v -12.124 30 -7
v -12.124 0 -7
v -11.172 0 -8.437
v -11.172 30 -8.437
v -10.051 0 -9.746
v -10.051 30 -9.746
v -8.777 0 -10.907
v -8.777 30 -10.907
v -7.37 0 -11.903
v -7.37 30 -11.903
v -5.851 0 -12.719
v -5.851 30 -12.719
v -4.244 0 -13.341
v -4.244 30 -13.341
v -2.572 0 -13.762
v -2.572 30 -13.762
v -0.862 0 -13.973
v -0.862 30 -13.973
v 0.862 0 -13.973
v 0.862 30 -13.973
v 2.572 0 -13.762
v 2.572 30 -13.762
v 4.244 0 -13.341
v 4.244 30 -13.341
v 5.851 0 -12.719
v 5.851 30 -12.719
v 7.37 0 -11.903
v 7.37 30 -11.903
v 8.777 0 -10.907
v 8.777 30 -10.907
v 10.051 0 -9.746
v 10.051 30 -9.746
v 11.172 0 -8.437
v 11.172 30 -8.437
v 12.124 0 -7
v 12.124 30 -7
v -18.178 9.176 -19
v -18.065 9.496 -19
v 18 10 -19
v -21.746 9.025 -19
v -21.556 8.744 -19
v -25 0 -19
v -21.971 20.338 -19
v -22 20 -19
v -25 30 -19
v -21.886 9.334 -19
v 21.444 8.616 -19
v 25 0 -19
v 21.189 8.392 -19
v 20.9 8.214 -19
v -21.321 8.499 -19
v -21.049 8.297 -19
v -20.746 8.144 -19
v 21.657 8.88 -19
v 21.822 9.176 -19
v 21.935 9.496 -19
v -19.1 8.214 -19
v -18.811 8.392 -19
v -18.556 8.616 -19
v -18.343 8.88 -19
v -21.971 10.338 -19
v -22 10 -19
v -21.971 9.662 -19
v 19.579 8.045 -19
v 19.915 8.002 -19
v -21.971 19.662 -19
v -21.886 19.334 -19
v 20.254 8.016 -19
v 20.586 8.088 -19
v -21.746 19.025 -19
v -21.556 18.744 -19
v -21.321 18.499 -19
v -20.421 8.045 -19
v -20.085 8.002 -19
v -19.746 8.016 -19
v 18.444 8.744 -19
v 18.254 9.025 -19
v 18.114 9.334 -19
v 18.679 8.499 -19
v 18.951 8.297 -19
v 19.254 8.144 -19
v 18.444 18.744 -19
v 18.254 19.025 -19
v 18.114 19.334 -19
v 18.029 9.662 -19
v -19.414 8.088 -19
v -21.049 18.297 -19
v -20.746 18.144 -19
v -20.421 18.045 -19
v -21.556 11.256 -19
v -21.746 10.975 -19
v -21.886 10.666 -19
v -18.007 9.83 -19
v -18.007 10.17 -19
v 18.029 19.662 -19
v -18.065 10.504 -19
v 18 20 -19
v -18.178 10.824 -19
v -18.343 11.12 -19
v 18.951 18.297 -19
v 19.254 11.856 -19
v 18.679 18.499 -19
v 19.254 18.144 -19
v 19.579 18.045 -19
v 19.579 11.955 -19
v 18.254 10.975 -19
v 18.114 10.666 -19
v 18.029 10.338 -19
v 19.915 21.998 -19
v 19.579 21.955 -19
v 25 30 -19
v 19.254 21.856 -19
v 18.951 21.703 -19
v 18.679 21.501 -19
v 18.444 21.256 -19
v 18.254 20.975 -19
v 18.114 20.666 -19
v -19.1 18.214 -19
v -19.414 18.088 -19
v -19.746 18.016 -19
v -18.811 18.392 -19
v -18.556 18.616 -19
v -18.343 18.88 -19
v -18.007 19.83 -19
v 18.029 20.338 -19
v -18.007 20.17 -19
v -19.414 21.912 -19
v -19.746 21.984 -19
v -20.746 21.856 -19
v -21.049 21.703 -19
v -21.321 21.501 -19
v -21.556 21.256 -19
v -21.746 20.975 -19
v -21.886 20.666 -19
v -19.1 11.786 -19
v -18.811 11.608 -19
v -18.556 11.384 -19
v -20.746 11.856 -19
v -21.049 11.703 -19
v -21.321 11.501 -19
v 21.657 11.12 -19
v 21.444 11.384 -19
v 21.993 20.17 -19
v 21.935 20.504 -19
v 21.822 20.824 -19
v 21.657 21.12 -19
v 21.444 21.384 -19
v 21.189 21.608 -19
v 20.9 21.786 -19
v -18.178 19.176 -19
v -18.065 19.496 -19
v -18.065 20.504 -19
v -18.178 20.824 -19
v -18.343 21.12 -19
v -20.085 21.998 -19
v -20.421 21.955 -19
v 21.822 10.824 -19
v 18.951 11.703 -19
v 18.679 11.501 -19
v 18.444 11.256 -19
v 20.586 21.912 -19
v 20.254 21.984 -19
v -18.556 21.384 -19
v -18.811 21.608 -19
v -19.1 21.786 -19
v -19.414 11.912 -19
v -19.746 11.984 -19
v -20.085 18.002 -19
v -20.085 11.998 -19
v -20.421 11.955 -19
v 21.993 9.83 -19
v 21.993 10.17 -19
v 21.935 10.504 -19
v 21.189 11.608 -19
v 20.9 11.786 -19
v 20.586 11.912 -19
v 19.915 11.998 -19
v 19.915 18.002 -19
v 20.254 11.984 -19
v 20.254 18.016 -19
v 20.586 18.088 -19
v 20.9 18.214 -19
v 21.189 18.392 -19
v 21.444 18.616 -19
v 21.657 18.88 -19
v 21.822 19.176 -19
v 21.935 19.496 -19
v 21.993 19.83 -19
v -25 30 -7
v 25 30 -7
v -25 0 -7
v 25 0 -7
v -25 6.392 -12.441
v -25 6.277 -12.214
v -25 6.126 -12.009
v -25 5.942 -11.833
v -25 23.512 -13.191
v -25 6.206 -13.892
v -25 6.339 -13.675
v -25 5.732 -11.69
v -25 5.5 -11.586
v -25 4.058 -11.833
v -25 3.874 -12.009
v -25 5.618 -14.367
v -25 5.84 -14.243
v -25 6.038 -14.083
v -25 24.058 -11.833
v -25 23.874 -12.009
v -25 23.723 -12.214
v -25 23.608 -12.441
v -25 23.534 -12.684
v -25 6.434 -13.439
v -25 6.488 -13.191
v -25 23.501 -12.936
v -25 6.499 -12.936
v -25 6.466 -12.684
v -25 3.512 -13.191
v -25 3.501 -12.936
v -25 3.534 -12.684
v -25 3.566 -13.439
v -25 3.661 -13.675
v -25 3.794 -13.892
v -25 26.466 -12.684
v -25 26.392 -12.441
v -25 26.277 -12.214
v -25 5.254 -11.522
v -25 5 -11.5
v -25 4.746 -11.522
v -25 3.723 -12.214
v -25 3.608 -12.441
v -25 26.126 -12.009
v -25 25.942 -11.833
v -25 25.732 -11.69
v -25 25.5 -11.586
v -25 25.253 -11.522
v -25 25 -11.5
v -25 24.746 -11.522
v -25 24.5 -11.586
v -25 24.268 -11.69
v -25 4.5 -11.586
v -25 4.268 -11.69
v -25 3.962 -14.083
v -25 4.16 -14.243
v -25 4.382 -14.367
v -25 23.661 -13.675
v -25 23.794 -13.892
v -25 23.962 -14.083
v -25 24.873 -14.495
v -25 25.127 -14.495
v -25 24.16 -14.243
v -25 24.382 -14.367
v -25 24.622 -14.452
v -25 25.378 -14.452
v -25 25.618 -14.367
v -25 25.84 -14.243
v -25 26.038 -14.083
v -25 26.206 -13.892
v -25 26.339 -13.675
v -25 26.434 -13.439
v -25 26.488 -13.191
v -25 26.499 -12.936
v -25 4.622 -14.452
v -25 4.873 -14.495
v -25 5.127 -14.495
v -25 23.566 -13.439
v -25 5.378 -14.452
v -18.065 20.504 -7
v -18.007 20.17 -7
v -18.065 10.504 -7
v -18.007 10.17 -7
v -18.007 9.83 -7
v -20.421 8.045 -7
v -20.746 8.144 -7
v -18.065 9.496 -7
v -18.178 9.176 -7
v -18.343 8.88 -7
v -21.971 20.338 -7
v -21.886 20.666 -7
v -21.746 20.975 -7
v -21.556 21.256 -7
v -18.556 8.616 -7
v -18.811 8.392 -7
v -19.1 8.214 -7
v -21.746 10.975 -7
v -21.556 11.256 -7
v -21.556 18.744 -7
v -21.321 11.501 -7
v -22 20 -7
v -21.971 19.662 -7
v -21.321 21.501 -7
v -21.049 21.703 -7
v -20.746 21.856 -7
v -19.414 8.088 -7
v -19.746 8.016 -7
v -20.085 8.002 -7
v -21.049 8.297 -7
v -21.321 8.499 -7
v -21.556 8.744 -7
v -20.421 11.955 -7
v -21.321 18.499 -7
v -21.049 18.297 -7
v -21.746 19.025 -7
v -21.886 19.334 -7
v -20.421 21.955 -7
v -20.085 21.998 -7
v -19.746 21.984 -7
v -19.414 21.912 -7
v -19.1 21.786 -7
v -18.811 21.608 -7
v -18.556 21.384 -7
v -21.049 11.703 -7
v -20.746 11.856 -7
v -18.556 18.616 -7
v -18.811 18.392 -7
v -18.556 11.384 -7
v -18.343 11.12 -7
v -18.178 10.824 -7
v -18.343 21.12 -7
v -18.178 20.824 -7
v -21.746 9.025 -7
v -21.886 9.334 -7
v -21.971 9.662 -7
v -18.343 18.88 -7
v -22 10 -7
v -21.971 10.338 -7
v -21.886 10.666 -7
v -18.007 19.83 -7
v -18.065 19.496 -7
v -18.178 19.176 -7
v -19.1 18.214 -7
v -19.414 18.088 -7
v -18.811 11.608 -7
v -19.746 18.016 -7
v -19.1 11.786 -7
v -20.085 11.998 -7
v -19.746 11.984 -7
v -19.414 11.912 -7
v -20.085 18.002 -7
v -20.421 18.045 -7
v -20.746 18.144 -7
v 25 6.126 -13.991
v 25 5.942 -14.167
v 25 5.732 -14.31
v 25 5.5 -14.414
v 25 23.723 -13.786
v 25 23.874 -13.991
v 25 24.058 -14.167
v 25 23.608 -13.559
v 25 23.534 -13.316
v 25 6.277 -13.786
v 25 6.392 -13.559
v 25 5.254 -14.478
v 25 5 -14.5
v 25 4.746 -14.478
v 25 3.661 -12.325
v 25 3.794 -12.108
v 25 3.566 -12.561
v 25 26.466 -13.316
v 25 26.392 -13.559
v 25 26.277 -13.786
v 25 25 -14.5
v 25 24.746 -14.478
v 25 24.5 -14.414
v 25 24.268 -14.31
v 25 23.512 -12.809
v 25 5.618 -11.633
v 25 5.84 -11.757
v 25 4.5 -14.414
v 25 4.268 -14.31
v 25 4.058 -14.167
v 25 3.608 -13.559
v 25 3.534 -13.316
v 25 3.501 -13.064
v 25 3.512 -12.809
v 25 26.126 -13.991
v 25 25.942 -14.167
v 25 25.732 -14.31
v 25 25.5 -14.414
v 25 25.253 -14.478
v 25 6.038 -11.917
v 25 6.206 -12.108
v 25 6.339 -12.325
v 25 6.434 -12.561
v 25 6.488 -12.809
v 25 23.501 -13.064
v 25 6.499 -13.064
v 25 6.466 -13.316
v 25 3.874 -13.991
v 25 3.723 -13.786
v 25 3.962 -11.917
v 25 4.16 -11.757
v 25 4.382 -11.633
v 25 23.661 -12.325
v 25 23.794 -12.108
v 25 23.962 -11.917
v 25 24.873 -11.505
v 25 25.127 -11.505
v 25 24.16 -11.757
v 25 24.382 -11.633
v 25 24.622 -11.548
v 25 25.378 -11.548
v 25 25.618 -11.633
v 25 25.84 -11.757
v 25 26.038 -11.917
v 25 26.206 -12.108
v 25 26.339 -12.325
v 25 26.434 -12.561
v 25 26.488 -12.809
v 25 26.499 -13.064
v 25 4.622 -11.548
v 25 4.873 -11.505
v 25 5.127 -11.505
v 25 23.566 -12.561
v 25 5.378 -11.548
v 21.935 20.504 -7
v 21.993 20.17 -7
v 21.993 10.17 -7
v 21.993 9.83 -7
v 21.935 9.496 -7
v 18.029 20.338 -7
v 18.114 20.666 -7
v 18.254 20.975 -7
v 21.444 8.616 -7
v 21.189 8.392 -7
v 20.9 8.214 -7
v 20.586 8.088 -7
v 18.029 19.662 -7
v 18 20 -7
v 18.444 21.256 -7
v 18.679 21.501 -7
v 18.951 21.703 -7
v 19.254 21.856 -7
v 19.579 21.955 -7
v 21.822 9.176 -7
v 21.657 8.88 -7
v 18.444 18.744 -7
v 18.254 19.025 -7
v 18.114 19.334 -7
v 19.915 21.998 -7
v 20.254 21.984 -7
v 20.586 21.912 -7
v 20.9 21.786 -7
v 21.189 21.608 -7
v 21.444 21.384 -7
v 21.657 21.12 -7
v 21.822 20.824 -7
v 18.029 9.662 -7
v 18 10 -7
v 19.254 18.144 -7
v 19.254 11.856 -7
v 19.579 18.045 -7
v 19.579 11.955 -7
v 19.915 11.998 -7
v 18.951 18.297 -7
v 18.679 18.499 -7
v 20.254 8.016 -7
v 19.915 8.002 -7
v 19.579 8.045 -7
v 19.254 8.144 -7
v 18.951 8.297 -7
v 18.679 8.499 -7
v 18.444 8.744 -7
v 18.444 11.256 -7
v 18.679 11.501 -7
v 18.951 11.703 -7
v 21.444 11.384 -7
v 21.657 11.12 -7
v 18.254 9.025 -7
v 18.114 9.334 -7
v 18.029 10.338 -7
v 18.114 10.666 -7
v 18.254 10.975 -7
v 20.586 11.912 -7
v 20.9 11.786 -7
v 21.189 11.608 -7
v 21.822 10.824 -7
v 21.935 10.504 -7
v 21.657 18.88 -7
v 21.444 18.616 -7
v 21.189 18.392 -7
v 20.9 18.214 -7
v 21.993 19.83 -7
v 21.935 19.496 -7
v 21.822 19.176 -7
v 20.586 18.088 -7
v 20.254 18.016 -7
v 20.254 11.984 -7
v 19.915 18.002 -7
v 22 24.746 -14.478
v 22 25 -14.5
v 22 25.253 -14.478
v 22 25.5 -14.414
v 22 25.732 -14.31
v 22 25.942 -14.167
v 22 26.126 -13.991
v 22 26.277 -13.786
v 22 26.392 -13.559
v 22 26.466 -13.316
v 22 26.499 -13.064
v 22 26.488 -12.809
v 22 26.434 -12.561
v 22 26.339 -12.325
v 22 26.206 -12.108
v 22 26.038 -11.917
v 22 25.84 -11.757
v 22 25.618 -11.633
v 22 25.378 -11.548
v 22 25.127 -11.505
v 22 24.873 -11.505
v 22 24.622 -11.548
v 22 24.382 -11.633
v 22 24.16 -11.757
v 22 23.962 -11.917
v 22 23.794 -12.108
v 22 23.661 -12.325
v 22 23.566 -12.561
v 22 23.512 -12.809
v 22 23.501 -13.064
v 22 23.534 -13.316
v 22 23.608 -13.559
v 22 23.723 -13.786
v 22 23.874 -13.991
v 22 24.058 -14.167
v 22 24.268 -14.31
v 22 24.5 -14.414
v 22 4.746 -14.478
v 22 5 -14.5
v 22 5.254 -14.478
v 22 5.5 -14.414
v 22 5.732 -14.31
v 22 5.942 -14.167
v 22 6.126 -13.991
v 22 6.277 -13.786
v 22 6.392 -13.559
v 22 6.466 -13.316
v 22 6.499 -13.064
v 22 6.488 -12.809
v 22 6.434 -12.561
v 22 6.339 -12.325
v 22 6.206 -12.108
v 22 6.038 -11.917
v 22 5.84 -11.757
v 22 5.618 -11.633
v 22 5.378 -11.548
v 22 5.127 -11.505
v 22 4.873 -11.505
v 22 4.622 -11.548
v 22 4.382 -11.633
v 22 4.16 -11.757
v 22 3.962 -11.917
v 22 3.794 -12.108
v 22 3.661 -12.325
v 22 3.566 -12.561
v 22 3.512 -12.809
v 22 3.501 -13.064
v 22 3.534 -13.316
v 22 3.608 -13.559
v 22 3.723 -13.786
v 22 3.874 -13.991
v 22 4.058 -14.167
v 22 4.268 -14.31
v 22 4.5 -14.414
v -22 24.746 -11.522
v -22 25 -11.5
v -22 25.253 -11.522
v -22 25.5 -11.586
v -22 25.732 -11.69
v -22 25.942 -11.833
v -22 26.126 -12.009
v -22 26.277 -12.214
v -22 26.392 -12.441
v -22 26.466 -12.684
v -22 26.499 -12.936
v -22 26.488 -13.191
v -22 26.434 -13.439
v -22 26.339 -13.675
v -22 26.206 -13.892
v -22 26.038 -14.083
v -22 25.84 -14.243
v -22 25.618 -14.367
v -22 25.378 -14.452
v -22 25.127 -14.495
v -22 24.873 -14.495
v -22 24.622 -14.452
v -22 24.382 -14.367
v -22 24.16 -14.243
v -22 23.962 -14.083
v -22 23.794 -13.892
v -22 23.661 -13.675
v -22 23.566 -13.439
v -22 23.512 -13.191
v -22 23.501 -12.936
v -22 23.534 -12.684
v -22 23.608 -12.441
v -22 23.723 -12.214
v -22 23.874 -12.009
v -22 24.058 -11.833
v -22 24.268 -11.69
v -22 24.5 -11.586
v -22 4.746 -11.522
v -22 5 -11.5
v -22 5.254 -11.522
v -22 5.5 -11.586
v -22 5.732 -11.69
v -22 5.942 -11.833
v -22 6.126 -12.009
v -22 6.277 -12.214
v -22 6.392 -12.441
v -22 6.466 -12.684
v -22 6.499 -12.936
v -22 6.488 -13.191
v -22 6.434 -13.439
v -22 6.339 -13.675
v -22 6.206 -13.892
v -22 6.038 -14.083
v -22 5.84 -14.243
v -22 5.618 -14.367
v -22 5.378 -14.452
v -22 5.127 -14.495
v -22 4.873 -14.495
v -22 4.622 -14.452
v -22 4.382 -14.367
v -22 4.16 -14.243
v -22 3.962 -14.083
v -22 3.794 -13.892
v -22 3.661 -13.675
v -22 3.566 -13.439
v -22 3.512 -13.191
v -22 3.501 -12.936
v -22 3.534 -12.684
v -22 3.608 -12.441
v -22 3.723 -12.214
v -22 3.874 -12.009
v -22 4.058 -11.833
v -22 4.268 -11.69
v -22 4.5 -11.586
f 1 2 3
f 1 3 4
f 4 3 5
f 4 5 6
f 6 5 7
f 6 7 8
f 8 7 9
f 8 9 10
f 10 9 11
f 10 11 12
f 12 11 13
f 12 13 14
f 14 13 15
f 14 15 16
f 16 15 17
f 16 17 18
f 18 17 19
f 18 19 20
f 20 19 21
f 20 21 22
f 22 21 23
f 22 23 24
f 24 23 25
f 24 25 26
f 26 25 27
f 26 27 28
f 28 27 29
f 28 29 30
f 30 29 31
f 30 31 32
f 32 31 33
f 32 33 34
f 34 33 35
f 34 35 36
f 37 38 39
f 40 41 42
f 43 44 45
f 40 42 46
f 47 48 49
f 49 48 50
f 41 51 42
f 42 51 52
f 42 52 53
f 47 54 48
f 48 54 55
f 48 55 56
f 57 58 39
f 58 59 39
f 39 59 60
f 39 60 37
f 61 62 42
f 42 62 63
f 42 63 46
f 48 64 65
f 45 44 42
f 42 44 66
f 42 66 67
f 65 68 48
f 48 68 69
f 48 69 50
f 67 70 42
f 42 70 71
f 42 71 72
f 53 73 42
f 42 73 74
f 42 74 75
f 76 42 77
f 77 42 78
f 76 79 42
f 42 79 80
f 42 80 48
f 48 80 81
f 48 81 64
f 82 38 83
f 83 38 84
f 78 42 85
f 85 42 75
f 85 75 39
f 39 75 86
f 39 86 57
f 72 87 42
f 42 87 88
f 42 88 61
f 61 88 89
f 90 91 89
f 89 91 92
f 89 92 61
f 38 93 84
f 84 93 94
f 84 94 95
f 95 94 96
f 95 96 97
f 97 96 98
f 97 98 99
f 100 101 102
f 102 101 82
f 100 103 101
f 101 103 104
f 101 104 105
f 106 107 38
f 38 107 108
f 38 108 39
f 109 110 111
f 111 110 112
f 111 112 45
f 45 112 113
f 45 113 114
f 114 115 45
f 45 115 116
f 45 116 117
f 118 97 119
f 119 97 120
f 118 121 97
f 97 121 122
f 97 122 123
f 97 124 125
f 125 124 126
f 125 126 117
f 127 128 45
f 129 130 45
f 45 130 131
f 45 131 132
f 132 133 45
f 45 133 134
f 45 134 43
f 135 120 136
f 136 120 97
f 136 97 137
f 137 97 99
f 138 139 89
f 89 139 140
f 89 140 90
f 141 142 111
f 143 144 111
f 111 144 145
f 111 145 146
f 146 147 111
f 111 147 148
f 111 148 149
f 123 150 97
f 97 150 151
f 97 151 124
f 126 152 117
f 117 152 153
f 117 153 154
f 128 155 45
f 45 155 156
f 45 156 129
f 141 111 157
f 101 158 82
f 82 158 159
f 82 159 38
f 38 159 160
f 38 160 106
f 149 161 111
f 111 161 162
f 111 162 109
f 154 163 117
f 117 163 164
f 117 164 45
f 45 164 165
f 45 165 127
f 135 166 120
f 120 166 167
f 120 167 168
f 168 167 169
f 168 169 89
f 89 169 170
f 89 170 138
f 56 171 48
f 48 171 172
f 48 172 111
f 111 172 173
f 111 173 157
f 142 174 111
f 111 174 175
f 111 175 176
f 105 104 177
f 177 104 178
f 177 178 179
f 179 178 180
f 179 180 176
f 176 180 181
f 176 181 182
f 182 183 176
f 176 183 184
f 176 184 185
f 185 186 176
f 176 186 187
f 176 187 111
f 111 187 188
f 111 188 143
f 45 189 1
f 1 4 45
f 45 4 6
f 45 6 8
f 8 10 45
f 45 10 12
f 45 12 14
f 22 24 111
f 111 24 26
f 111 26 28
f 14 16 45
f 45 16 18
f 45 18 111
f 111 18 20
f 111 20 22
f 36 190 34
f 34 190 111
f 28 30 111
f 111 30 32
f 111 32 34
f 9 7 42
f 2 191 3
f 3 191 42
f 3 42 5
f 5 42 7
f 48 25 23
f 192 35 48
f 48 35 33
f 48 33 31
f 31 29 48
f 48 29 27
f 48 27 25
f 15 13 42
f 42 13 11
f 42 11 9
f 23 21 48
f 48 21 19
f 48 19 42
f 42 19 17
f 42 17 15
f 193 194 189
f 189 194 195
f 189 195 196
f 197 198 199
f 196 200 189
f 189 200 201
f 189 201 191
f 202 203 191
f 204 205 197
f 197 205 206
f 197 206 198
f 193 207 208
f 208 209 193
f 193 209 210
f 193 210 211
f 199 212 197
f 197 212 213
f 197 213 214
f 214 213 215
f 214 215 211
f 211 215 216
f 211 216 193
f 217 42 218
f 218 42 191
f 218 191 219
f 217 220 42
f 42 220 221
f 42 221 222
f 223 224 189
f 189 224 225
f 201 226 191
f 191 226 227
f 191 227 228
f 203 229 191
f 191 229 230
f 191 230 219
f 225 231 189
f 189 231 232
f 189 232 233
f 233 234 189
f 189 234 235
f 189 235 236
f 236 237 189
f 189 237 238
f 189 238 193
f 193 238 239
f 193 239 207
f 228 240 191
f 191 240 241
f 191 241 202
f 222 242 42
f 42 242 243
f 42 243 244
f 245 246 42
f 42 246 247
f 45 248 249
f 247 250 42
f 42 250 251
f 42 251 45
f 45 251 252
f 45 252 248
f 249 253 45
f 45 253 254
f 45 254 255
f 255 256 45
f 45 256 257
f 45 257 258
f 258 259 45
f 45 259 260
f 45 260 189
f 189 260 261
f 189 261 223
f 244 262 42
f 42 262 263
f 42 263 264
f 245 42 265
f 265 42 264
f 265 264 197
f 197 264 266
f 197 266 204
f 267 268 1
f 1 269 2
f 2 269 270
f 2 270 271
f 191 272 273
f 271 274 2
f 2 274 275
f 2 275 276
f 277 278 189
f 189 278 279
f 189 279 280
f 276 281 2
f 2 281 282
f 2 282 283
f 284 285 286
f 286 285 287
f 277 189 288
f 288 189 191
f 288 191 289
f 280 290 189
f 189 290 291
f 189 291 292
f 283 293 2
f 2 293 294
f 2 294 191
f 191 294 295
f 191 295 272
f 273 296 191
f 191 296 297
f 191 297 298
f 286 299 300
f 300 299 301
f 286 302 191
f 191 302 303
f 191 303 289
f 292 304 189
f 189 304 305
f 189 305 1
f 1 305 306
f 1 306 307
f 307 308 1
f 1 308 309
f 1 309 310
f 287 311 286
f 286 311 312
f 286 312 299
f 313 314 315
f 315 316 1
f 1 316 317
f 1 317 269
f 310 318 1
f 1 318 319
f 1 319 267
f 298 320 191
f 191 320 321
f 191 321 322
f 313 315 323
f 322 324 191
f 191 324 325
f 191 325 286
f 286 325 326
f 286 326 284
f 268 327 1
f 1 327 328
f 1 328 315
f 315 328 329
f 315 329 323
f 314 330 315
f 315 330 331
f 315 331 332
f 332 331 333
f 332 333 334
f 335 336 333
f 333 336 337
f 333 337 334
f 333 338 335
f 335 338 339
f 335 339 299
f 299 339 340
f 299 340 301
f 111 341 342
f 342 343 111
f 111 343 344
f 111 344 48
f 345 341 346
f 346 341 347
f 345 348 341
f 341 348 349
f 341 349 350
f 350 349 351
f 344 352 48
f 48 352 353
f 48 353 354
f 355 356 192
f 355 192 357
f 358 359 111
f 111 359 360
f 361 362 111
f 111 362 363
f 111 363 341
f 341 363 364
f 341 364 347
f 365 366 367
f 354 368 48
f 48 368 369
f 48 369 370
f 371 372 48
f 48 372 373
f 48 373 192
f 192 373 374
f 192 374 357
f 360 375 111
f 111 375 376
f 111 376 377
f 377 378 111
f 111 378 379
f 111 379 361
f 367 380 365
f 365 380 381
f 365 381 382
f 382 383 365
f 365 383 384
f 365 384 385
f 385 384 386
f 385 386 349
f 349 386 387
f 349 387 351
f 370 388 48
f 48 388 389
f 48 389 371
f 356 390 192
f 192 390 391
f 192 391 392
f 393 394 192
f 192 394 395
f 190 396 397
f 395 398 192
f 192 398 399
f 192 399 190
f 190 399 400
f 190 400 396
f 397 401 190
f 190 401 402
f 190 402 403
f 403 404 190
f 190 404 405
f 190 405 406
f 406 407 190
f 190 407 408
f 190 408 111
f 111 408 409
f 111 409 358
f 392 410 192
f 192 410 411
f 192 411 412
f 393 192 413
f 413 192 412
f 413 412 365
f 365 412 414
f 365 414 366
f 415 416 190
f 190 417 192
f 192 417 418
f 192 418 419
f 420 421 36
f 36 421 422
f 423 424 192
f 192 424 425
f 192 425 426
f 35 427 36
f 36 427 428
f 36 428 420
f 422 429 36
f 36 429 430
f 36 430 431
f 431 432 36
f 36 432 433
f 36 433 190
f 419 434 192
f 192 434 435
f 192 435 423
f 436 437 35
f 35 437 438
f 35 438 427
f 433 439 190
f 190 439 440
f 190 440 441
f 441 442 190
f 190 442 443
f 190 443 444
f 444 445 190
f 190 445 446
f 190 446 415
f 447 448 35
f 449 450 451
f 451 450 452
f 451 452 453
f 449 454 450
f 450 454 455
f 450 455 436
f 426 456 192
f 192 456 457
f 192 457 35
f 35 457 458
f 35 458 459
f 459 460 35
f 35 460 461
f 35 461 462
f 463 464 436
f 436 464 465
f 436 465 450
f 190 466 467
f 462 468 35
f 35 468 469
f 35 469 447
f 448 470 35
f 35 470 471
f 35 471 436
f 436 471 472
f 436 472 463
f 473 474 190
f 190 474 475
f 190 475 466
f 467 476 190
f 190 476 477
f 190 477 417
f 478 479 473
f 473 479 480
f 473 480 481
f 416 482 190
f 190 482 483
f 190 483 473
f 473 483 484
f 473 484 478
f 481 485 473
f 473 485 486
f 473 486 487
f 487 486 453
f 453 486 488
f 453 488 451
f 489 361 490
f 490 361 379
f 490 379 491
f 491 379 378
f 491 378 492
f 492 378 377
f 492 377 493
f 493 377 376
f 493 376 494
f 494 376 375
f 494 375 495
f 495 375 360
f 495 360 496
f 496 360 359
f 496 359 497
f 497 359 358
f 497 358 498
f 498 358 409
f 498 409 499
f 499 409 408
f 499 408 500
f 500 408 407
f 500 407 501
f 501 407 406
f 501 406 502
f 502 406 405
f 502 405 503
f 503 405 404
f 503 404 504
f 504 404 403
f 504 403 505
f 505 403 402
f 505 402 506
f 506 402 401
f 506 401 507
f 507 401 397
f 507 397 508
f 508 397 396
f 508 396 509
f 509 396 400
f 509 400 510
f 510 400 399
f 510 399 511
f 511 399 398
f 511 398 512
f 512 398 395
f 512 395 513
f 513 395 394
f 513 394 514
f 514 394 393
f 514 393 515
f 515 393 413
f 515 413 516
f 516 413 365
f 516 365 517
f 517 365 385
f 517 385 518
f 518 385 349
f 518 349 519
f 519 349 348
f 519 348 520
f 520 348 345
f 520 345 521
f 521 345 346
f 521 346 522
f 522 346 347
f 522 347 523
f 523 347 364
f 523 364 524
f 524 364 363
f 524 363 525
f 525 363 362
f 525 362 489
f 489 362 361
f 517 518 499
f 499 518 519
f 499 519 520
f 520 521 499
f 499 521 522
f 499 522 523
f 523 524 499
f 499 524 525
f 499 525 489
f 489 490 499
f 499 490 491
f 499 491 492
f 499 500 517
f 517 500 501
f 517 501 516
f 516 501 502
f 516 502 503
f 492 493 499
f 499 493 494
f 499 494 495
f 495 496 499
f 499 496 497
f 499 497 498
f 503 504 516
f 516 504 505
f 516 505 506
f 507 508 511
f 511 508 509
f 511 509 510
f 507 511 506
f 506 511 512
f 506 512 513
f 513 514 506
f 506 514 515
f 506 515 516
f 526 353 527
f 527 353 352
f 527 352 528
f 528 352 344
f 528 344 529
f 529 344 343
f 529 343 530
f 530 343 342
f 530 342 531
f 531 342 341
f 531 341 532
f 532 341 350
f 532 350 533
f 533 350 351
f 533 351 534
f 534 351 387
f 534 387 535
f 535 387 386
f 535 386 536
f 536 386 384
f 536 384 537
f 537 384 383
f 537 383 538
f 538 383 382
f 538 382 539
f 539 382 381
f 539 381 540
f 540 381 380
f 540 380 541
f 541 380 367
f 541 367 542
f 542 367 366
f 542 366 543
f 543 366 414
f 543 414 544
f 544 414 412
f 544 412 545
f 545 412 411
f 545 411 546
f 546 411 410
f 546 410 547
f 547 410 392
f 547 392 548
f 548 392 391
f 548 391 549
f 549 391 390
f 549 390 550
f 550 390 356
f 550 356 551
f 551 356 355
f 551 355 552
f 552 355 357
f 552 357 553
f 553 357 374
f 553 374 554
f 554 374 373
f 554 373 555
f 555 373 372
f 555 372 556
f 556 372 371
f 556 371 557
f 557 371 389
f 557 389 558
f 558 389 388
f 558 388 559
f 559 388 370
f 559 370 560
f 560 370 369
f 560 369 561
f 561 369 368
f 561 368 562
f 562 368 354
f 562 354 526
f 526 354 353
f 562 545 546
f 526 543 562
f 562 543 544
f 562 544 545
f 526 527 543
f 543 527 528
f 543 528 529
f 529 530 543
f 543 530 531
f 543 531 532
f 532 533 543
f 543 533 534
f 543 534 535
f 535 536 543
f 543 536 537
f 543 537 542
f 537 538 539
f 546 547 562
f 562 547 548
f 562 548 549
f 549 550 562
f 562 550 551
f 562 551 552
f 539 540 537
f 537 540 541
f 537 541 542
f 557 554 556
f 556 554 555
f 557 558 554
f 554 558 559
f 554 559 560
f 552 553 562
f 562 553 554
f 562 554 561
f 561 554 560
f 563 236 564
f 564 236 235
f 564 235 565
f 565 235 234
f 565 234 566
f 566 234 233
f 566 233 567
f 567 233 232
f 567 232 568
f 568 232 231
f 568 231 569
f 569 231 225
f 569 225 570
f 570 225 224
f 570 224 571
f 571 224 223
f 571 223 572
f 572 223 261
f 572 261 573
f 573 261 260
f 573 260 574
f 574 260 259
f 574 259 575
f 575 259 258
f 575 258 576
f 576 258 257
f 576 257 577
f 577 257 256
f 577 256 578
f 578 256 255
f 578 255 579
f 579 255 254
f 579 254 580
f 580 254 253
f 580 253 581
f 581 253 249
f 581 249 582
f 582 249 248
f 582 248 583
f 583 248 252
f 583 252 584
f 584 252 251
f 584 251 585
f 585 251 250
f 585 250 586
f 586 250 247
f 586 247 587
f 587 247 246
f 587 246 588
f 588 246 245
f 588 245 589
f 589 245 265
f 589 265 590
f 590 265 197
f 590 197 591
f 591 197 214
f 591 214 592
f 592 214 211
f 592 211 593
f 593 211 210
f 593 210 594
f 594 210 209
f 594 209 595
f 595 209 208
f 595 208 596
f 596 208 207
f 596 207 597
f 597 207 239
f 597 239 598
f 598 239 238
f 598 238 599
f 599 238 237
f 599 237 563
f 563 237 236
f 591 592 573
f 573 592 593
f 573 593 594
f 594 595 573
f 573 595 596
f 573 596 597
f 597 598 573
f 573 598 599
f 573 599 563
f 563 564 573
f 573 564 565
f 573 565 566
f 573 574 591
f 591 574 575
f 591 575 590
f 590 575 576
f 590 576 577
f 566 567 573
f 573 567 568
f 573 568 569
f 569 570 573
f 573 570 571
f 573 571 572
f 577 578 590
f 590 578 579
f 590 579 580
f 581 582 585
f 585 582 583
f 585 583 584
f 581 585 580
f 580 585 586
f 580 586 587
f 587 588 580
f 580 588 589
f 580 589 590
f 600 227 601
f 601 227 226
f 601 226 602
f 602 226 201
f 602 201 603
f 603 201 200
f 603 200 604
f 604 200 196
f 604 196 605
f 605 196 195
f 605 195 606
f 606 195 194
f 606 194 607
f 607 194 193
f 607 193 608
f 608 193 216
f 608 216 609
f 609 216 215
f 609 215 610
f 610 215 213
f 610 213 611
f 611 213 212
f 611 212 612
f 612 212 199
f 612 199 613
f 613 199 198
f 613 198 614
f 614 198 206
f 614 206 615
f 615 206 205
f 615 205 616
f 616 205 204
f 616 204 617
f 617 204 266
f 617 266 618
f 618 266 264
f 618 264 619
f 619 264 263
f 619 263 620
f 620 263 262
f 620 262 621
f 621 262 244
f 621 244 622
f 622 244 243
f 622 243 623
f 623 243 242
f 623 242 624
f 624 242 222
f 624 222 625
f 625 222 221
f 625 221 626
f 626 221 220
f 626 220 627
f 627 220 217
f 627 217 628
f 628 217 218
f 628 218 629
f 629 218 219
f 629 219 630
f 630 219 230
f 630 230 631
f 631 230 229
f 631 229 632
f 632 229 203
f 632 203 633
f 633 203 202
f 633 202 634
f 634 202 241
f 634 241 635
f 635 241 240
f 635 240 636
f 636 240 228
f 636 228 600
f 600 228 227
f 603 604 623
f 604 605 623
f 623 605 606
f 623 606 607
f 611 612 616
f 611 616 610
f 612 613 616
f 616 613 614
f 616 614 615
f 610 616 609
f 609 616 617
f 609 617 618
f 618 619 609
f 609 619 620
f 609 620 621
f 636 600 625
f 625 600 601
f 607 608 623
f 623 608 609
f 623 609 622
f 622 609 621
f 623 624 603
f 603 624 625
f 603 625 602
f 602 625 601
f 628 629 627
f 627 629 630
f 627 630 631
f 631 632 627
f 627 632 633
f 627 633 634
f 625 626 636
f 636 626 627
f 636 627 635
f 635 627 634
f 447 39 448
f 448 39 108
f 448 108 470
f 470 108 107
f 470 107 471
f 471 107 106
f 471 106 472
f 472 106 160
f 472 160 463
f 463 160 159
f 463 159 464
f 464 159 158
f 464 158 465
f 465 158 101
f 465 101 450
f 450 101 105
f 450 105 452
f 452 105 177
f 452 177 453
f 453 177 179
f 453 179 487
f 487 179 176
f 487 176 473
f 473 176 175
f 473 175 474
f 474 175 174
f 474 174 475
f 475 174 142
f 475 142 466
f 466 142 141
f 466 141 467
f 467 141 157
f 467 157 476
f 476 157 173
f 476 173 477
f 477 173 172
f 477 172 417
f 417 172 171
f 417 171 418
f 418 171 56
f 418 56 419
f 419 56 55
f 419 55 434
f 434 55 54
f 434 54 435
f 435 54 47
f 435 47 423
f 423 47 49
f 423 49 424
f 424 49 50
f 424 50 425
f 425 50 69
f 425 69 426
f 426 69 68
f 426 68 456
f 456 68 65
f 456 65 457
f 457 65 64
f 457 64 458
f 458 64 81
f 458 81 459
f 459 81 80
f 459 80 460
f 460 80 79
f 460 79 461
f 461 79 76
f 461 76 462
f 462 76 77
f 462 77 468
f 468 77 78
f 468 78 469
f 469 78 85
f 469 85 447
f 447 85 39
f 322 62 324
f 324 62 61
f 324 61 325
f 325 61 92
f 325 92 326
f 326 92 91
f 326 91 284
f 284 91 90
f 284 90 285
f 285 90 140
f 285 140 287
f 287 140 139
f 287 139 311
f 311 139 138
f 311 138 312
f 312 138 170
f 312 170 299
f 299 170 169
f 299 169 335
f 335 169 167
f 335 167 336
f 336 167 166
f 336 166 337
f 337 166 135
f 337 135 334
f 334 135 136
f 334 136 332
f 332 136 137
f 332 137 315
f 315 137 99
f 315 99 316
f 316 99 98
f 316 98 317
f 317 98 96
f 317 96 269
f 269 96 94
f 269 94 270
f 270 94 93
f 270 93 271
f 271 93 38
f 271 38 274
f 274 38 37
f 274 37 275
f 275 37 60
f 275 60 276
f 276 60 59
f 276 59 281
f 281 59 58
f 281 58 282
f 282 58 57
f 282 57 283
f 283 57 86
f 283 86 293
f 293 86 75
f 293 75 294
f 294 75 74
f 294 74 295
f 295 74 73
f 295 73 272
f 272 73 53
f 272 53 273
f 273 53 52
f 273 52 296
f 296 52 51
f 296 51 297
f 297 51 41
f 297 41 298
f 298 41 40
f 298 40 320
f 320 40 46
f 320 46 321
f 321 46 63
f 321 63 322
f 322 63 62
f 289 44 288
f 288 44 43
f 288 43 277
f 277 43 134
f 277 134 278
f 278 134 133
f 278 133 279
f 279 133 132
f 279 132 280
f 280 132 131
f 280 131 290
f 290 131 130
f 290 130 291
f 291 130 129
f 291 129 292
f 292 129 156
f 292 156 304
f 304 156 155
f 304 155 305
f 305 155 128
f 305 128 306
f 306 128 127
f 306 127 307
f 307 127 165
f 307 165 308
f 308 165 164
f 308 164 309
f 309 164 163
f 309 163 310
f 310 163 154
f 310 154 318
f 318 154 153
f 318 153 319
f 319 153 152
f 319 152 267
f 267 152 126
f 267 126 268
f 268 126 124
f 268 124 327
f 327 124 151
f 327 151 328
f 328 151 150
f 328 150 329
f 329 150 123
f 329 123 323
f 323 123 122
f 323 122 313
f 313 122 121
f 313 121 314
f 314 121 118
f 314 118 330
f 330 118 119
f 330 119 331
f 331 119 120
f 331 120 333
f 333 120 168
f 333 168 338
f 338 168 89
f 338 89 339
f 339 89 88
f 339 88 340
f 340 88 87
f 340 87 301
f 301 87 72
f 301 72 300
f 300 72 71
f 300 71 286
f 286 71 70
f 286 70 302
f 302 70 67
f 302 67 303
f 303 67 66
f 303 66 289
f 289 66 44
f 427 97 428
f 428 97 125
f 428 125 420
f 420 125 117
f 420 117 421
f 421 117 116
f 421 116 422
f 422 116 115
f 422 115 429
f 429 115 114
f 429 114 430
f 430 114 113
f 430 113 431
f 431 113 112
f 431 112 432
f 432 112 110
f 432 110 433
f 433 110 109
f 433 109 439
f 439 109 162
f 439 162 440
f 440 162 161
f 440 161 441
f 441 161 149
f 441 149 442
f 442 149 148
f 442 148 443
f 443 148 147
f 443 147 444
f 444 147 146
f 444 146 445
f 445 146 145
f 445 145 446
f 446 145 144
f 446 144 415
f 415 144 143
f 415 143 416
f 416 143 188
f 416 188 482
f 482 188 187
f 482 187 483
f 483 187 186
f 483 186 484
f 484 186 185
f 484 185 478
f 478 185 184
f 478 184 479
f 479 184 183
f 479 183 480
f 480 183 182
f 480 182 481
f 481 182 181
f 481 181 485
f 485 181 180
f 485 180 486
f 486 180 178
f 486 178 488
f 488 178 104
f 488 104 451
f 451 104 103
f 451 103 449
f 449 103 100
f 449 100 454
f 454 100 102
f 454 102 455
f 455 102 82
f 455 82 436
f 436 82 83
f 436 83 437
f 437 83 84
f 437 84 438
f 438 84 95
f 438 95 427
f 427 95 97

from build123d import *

# Parameters (mm, degrees)
BOSS_EXTRU_3_DEPTH      = 30
ESQUISSE1_5_W           = 12.875644347
ESQUISSE1_5_H           = 12
BOSS_EXTRU_4_DEPTH      = 30
ESQUISSE10_R            = 1.5
ENL_V_MAT_EXTRU_1_DEPTH = 3
ENL_V_START             = -3
ESQUISSE9_R             = 1.5
ENL_V_MAT_EXTRU_2_DEPTH = 3
ESQUISSE11_R            = 2
ENL_V_MAT_EXTRU_3_DEPTH = 41.853396432


with BuildPart() as part:
    # Esquisse1 → Boss.-Extru.3 (new body)
    with BuildSketch(Plane(origin=(0, 0, 0), x_dir=(1, 0, 0), z_dir=(0, 1, 0))):
        with BuildLine():
            Line((-12.124355653, 19), (-12.124355653, 7))
            ThreePointArc((-12.124355653, 7), (0, 14), (12.124355653, 7))
            Line((12.124355653, 7), (12.124355653, 19))
            Line((12.124355653, 19), (-12.124355653, 19))
        make_face()
    extrude(amount=BOSS_EXTRU_3_DEPTH)

    # Esquisse1<5> → Boss.-Extru.4 (add)
    with BuildSketch(Plane(origin=(0, 0, 0), x_dir=(1, 0, 0), z_dir=(0, 1, 0))):
        with Locations((-18.562177827, 13)):
            Rectangle(ESQUISSE1_5_W, ESQUISSE1_5_H)
        with Locations((18.562177827, 13)):
            Rectangle(ESQUISSE1_5_W, ESQUISSE1_5_H)
    extrude(amount=BOSS_EXTRU_4_DEPTH)

    # Esquisse10 → Enlèv. mat.-Extru.1 (cut)
    with BuildSketch(Plane(origin=(25, 0, 0), x_dir=(0, 0, -1), z_dir=(1, 0, 0))):
        with Locations((13, 25)):
            Circle(ESQUISSE10_R)
        with Locations((13, 5)):
            Circle(ESQUISSE10_R)
    extrude(amount=-ENL_V_MAT_EXTRU_1_DEPTH, mode=Mode.SUBTRACT)

    # Esquisse9 → Enlèv. mat.-Extru.2 (cut)
    with BuildSketch(Plane.ZY.offset(25).offset(ENL_V_START)):
        with Locations((-13, 25)):
            Circle(ESQUISSE9_R)
        with Locations((-13, 5)):
            Circle(ESQUISSE9_R)
    extrude(amount=ENL_V_MAT_EXTRU_2_DEPTH, mode=Mode.SUBTRACT)

    # Esquisse11 → Enlèv. mat.-Extru.3 (cut, through all)
    with BuildSketch(Plane(origin=(0, 0, -19), x_dir=(-1, 0, 0), z_dir=(0, 0, -1))):
        with Locations((-20, 20)):
            Circle(ESQUISSE11_R)
        with Locations((20, 20)):
            Circle(ESQUISSE11_R)
        with Locations((-20, 10)):
            Circle(ESQUISSE11_R)
        with Locations((20, 10)):
            Circle(ESQUISSE11_R)
    extrude(amount=-ENL_V_MAT_EXTRU_3_DEPTH, mode=Mode.SUBTRACT)


solid = part.part
